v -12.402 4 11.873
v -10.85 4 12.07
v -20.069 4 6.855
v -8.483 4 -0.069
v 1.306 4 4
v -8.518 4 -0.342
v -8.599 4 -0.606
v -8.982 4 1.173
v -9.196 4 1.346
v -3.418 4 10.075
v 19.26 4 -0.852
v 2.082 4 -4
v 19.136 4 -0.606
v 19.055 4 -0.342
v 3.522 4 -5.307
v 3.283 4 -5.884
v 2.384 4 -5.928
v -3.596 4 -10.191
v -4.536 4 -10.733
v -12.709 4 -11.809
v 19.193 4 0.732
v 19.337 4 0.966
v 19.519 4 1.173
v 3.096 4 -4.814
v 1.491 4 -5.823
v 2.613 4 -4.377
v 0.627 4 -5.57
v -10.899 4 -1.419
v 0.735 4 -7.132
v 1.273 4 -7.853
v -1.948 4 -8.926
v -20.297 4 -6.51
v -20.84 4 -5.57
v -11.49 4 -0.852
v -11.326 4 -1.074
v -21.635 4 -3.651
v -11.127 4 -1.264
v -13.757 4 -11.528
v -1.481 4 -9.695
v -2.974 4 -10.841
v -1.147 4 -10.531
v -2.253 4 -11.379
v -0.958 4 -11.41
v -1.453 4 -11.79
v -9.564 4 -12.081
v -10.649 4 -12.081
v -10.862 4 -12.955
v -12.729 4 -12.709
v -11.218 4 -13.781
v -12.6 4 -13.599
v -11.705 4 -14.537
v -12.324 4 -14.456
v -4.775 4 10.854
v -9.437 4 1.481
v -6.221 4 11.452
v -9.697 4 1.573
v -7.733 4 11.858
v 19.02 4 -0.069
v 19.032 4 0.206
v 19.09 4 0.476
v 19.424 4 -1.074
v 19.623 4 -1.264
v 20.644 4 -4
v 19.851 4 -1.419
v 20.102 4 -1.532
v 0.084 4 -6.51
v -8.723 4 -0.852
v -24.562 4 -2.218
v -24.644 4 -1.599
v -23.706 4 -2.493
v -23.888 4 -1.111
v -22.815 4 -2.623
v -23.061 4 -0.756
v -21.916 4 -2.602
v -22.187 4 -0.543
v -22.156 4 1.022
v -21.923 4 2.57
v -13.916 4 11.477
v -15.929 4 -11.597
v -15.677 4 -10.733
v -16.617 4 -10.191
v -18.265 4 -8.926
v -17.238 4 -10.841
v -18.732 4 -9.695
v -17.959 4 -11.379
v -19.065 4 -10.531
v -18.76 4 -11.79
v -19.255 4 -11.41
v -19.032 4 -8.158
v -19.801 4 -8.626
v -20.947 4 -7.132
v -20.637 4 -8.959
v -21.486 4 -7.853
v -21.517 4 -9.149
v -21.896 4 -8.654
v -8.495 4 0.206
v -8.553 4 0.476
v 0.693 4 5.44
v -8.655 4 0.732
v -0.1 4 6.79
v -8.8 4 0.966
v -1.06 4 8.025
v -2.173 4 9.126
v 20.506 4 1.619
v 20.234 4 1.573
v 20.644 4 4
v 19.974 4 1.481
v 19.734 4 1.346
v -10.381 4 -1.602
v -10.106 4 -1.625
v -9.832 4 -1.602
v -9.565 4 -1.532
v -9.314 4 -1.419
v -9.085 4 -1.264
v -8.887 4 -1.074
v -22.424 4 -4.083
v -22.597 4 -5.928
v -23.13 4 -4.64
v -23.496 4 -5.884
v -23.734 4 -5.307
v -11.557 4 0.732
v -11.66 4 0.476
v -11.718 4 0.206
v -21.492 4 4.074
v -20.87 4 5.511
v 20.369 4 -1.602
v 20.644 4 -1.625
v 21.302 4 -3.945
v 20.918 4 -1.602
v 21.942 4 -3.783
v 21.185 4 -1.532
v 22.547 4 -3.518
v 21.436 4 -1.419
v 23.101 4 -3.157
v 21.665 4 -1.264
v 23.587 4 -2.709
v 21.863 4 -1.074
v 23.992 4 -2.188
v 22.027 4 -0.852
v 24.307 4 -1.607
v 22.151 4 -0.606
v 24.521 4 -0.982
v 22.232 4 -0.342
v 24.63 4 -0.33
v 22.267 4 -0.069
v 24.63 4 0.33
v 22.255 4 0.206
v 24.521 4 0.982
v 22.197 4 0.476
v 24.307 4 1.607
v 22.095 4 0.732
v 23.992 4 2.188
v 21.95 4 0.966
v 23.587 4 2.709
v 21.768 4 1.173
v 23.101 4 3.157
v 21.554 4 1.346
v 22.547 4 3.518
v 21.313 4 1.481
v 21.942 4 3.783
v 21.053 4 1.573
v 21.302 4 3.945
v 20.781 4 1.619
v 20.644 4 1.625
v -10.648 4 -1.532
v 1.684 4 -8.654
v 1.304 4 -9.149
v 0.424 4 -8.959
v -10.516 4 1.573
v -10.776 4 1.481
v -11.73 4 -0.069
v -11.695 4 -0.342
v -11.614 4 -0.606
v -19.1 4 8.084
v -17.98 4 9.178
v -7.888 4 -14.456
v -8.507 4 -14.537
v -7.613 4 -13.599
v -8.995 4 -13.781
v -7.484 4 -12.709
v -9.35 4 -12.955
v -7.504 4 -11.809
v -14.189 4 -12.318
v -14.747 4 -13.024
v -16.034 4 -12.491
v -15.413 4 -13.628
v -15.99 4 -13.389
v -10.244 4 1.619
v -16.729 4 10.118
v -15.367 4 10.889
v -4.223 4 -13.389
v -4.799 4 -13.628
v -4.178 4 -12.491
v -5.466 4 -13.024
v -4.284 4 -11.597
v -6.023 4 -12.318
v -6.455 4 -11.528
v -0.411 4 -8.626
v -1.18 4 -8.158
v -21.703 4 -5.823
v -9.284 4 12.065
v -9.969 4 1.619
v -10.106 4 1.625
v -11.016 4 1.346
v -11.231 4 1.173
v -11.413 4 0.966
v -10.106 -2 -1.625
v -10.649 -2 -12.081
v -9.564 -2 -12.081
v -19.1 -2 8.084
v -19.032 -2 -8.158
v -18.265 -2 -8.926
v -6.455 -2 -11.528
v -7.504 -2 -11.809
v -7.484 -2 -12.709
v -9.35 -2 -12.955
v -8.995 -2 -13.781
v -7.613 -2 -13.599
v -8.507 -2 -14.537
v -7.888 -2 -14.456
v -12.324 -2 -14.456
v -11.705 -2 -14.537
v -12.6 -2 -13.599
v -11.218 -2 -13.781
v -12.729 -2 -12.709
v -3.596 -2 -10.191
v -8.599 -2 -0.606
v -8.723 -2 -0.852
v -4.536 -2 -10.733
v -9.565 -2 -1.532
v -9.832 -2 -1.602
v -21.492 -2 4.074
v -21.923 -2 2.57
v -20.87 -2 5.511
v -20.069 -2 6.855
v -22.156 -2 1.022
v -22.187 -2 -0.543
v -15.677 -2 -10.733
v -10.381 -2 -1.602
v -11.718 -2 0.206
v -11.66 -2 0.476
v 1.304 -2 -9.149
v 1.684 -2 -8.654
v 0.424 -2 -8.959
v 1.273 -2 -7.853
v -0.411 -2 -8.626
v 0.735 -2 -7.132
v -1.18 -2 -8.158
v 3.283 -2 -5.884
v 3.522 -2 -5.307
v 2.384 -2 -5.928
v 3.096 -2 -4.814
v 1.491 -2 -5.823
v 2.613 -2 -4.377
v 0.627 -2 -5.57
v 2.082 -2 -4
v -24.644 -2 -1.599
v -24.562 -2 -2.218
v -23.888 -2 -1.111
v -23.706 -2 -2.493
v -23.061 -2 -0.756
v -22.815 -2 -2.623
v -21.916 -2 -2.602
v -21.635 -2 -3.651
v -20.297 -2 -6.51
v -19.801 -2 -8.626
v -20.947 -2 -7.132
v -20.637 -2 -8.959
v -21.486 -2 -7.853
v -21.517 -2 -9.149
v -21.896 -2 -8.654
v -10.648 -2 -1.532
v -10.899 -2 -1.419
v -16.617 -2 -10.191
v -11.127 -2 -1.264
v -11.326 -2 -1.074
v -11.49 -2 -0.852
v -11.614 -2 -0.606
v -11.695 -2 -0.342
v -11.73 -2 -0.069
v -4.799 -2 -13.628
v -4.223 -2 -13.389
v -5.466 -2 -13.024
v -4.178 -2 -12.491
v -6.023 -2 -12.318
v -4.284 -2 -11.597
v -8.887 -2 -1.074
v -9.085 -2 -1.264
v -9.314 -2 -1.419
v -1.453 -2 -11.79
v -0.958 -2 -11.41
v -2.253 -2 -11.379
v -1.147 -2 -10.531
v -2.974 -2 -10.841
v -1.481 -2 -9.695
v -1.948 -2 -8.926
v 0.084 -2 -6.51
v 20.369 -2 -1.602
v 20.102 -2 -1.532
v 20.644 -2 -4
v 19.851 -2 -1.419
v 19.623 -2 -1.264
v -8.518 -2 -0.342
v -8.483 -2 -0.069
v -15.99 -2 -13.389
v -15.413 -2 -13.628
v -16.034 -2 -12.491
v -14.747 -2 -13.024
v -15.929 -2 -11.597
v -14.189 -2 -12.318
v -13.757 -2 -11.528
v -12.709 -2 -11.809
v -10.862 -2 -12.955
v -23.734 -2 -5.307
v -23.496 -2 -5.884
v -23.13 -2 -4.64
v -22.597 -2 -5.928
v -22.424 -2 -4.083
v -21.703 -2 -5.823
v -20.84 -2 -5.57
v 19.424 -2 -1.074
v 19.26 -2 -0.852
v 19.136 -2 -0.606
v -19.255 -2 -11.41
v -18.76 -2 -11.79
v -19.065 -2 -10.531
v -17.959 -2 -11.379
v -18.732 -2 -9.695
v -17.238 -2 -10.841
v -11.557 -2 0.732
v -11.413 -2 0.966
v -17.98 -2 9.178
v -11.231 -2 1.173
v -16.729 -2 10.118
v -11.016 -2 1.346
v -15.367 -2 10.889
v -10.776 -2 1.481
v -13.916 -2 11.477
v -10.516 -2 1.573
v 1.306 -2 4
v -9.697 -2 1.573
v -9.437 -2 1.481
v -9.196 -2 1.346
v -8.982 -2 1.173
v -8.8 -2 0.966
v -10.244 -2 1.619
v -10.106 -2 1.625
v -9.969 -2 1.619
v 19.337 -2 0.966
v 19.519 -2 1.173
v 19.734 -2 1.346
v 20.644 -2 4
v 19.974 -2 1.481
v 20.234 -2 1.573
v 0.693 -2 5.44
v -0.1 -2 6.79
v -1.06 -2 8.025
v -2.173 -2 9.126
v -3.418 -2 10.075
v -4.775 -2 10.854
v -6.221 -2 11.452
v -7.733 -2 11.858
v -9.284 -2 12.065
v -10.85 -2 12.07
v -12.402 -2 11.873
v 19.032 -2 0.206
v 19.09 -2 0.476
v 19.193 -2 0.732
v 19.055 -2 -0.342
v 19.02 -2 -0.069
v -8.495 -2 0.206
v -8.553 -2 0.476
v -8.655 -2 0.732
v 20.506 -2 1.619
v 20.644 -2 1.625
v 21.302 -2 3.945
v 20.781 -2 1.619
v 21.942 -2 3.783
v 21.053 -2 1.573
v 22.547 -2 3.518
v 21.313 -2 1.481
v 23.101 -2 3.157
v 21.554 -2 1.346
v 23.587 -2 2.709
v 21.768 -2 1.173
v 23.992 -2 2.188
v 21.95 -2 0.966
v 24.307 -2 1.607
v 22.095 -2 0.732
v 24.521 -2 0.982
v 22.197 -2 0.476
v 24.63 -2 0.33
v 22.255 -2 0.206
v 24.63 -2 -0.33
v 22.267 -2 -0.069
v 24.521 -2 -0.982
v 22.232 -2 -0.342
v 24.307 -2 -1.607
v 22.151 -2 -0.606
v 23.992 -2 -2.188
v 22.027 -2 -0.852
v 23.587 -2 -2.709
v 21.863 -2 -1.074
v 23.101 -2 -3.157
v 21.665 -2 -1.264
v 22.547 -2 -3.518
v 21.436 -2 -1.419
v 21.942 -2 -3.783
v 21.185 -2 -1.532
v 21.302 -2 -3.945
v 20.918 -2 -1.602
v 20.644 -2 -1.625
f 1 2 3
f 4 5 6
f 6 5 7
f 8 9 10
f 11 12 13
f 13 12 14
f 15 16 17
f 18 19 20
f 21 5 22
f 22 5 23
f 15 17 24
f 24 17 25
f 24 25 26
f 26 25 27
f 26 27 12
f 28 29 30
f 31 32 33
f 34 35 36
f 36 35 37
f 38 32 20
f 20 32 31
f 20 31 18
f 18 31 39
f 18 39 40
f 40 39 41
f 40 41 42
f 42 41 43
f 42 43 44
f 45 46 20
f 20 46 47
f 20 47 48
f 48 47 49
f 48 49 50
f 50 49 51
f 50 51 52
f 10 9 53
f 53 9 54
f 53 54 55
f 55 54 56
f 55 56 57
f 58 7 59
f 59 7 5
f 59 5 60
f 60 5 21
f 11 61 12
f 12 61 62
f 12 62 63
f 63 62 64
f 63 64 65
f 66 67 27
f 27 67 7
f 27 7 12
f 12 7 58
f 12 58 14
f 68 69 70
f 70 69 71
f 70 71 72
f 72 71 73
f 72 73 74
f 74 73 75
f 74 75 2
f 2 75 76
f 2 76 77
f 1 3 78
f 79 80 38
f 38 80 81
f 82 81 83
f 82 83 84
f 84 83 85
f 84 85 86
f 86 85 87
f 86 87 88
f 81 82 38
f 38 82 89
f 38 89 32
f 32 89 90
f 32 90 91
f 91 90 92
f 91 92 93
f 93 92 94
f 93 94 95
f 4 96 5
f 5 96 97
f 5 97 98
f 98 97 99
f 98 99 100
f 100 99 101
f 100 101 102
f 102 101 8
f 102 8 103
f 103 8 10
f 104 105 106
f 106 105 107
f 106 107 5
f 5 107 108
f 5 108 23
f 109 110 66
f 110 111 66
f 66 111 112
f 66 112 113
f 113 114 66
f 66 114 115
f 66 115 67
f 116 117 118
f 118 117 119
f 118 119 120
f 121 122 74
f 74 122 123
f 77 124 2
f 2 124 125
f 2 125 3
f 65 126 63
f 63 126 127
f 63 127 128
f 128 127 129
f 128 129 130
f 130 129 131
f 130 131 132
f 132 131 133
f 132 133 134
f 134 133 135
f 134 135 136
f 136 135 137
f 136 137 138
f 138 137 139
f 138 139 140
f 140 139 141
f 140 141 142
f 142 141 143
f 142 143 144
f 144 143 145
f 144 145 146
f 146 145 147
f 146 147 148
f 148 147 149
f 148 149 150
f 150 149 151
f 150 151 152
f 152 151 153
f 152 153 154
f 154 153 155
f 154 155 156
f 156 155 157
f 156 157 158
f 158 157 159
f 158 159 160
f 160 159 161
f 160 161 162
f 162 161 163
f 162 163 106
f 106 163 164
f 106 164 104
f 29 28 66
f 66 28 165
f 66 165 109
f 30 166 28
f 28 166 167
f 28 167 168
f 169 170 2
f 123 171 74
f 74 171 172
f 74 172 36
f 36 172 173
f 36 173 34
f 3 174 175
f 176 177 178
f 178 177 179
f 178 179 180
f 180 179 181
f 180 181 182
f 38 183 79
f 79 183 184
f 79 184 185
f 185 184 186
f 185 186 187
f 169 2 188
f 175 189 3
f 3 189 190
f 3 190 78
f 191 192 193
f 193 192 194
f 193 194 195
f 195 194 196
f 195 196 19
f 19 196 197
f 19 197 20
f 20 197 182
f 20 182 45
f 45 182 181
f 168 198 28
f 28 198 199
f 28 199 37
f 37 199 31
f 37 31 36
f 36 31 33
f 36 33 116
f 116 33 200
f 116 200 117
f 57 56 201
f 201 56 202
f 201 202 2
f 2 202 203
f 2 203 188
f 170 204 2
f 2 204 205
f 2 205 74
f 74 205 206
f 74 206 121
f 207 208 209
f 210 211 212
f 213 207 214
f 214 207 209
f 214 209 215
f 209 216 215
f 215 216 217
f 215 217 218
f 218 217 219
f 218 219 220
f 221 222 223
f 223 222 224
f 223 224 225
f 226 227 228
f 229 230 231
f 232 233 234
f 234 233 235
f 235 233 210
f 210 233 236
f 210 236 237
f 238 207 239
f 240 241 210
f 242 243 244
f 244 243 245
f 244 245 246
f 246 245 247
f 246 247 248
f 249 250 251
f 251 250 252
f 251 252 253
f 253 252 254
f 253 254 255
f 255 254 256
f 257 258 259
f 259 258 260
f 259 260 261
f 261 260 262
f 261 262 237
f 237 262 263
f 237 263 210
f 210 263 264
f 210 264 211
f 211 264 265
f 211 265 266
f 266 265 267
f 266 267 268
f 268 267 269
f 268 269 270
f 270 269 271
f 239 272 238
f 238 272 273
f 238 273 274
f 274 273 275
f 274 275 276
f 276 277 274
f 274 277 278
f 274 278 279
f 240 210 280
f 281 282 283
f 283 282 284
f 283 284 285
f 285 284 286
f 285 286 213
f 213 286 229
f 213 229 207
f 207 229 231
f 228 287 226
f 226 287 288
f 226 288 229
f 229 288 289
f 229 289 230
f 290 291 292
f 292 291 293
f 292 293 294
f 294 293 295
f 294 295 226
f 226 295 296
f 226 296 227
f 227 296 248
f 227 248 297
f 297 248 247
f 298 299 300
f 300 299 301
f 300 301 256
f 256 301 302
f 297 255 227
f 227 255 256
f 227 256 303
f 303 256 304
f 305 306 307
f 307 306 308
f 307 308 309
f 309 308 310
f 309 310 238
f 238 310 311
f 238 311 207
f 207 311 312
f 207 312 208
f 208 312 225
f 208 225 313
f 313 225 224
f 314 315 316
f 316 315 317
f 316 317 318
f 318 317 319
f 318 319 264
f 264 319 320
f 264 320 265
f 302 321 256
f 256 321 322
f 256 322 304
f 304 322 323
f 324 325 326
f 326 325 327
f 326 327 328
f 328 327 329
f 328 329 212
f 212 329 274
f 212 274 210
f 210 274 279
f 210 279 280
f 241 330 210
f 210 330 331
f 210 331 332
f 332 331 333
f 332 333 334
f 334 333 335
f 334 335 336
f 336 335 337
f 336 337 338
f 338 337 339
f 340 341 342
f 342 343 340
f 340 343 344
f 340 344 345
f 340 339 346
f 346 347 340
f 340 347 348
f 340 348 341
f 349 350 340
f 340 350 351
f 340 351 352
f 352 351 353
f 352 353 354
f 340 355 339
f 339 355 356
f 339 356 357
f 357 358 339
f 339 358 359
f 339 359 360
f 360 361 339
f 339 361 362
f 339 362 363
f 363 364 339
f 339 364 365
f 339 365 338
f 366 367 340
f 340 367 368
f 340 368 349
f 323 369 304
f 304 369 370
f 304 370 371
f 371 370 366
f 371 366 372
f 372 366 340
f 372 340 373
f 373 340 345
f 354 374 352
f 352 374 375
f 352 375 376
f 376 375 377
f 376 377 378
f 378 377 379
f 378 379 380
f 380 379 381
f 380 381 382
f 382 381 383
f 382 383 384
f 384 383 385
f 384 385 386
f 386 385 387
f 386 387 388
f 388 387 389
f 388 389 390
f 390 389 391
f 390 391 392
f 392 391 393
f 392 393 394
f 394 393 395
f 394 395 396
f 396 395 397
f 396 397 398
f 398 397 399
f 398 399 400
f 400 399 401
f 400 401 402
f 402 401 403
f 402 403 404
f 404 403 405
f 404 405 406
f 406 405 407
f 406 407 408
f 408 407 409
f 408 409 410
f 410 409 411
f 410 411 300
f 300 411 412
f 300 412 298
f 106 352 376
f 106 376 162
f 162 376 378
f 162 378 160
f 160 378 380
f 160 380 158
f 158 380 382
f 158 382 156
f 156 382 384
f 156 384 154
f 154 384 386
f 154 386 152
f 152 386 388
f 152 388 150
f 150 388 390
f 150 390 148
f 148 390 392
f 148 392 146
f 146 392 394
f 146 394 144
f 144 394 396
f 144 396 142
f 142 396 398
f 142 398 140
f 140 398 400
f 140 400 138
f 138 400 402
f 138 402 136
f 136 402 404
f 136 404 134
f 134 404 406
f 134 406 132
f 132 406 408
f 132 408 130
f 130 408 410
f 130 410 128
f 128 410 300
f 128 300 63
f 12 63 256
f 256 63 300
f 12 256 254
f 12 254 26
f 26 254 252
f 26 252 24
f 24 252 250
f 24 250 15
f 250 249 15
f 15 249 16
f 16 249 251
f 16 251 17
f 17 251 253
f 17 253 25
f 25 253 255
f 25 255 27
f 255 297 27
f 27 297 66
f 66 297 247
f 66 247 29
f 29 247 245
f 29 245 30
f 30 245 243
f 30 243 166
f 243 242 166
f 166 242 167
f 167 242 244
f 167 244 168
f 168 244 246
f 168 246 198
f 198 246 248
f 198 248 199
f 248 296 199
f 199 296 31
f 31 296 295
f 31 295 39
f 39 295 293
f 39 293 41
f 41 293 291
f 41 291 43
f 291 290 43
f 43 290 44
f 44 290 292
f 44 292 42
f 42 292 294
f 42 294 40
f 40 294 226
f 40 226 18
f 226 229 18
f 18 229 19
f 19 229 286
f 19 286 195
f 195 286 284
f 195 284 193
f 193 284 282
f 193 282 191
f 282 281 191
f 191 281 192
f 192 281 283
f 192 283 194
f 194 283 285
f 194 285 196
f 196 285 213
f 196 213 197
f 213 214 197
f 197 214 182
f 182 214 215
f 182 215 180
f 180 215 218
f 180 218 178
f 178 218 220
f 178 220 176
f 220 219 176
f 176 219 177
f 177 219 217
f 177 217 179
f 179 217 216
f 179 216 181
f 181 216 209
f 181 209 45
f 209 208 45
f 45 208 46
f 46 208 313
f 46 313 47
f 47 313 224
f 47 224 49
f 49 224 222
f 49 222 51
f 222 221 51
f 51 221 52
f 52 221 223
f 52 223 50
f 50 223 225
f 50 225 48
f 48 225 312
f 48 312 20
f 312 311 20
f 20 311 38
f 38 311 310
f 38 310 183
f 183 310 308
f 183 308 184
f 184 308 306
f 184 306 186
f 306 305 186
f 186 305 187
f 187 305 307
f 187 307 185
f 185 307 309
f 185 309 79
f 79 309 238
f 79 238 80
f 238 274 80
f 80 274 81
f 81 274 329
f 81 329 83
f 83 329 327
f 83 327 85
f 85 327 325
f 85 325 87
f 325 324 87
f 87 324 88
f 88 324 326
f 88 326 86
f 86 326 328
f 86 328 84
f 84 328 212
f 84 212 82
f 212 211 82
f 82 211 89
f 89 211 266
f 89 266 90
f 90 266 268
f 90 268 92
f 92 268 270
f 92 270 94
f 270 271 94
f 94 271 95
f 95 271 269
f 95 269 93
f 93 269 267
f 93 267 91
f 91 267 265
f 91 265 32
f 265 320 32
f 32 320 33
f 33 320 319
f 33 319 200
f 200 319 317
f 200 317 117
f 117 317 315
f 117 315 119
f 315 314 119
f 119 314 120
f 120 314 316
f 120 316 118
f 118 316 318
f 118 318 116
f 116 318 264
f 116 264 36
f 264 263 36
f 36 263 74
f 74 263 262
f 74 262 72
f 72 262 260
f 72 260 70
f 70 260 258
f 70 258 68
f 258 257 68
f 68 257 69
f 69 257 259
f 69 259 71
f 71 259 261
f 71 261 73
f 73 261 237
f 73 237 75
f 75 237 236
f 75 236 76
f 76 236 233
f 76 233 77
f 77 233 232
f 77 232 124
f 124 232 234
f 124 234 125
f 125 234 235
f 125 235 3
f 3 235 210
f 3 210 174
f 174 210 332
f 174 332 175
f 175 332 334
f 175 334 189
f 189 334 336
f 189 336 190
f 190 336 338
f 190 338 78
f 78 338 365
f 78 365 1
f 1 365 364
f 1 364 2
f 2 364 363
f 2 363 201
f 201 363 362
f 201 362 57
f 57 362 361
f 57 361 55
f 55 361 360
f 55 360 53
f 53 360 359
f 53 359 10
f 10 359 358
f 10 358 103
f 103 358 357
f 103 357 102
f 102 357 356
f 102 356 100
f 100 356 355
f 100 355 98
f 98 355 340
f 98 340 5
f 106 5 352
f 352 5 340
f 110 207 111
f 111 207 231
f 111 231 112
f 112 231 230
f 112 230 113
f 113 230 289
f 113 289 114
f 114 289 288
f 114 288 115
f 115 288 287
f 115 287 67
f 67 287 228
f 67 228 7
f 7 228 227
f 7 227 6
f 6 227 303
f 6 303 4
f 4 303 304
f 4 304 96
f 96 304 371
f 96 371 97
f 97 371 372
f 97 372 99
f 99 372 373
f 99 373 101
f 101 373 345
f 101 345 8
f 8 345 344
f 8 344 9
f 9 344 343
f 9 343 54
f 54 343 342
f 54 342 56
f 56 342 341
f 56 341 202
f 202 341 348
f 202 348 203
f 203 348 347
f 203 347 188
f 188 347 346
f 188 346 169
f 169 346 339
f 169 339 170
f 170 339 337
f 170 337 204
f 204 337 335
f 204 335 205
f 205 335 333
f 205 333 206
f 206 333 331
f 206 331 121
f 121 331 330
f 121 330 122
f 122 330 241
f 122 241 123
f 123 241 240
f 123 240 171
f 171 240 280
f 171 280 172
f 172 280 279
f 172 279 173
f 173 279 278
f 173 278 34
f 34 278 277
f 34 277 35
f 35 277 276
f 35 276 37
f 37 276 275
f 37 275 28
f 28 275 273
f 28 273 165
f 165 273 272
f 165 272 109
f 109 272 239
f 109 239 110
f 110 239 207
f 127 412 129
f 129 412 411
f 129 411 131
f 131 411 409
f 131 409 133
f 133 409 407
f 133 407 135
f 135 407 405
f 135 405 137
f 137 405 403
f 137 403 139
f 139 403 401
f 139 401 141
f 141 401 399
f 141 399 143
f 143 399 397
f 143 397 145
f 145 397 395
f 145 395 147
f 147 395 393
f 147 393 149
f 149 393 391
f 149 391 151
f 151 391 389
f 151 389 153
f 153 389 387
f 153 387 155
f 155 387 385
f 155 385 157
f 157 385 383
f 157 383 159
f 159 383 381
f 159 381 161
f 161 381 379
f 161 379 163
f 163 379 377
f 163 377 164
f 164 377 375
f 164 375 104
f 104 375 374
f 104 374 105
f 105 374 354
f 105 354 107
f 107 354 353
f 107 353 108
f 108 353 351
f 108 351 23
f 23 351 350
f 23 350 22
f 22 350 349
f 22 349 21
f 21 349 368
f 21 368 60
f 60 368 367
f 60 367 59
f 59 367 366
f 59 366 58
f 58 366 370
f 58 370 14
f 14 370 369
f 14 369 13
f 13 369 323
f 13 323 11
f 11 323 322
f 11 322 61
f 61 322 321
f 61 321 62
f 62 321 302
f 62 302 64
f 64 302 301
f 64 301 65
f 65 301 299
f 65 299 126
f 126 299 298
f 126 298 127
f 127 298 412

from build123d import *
from build123d.topology import SkipClean

# Parameters (mm, degrees)
SKETCH1_R            = 1.625
BOSS_EXTRUDE1_DEPTH  = 4
CUT_EXTRUDE1_START   = -10
CUT_EXTRUDE1_DEPTH   = 10
MOVE_START           = -2
MOVE_FACE1_OUTLINE_R = 1.625
MOVE_FACE1_DEPTH     = 2


# Read off the part's stored shape, not the designer's step: Move Face1
with BuildPart() as part:
    # Sketch1 → Boss-Extrude1 (new body)
    with BuildSketch(Plane(origin=(0, 0, 0), x_dir=(1, 0, 0), z_dir=(0, 1, 0))):
        with BuildLine():
            Line((20.643657446, 4), (2.081641936, 4))
            ThreePointArc((2.081641936, 4), (2.861028333, 4.588201733), (3.521749436, 5.30713988))
            ThreePointArc((3.521749436, 5.30713988), (3.405395609, 5.596745198), (3.282888305, 5.883801663))
            ThreePointArc((3.282888305, 5.883801663), (1.93527598, 5.894040025), (0.627094961, 5.57027124))
            ThreePointArc((0.627094961, 5.57027124), (0.366286148, 6.046375), (0.084372603, 6.510293938))
            ThreePointArc((0.084372603, 6.510293938), (1.018855105, 7.48132754), (1.683794586, 8.65351323))
            ThreePointArc((1.683794586, 8.65351323), (1.496450048, 8.903135899), (1.303821399, 9.148703928))
            ThreePointArc((1.303821399, 9.148703928), (-0.000522033, 8.809805691), (-1.180330337, 8.158486898))
            ThreePointArc((-1.180330337, 8.158486898), (-1.555477026, 8.550865528), (-1.947855656, 8.926012217))
            ThreePointArc((-1.947855656, 8.926012217), (-1.296536862, 10.105820521), (-0.957638625, 11.410163953))
            ThreePointArc((-0.957638625, 11.410163953), (-1.203206655, 11.602792602), (-1.452829324, 11.79013714))
            ThreePointArc((-1.452829324, 11.79013714), (-2.625015014, 11.125197659), (-3.596048616, 10.190715157))
            ThreePointArc((-3.596048616, 10.190715157), (-4.059967554, 10.472628702), (-4.536071314, 10.733437515))
            ThreePointArc((-4.536071314, 10.733437515), (-4.212302529, 12.041618533), (-4.222540891, 13.389230859))
            ThreePointArc((-4.222540891, 13.389230859), (-4.509597355, 13.511738163), (-4.799202674, 13.62809199))
            ThreePointArc((-4.799202674, 13.62809199), (-5.759348103, 12.682425791), (-6.455432668, 11.528463019))
            ThreePointArc((-6.455432668, 11.528463019), (-6.976508546, 11.680699536), (-7.503891752, 11.809396783))
            ThreePointArc((-7.503891752, 11.809396783), (-7.529737283, 13.156800143), (-7.888414517, 14.455843809))
            ThreePointArc((-7.888414517, 14.455843809), (-8.197396993, 14.499881098), (-8.507248835, 14.537314892))
            ThreePointArc((-8.507248835, 14.537314892), (-9.18992168, 13.375367565), (-9.563620196, 12.080565177))
            ThreePointArc((-9.563620196, 12.080565177), (-10.106342554, 12.09275), (-10.649064912, 12.080565177))
            ThreePointArc((-10.649064912, 12.080565177), (-11.022763428, 13.375367565), (-11.705436272, 14.537314892))
            ThreePointArc((-11.705436272, 14.537314892), (-12.015288115, 14.499881098), (-12.324270591, 14.455843809))
            ThreePointArc((-12.324270591, 14.455843809), (-12.682947825, 13.156800143), (-12.708793355, 11.809396783))
            ThreePointArc((-12.708793355, 11.809396783), (-13.236176561, 11.680699536), (-13.757252439, 11.528463019))
            ThreePointArc((-13.757252439, 11.528463019), (-14.453337005, 12.682425791), (-15.413482434, 13.62809199))
            ThreePointArc((-15.413482434, 13.62809199), (-15.703087752, 13.511738163), (-15.990144217, 13.389230859))
            ThreePointArc((-15.990144217, 13.389230859), (-16.000382579, 12.041618533), (-15.676613793, 10.733437515))
            ThreePointArc((-15.676613793, 10.733437515), (-16.152717554, 10.472628702), (-16.616636492, 10.190715157))
            ThreePointArc((-16.616636492, 10.190715157), (-17.587670094, 11.125197659), (-18.759855783, 11.79013714))
            ThreePointArc((-18.759855783, 11.79013714), (-19.009478453, 11.602792602), (-19.255046482, 11.410163953))
            ThreePointArc((-19.255046482, 11.410163953), (-18.916148245, 10.105820521), (-18.264829452, 8.926012217))
            ThreePointArc((-18.264829452, 8.926012217), (-18.657208082, 8.550865528), (-19.032354771, 8.158486898))
            ThreePointArc((-19.032354771, 8.158486898), (-20.212163074, 8.809805691), (-21.516506507, 9.148703928))
            ThreePointArc((-21.516506507, 9.148703928), (-21.709135156, 8.903135899), (-21.896479694, 8.65351323))
            ThreePointArc((-21.896479694, 8.65351323), (-21.231540213, 7.48132754), (-20.297057711, 6.510293938))
            ThreePointArc((-20.297057711, 6.510293938), (-20.578971255, 6.046375), (-20.839780068, 5.57027124))
            ThreePointArc((-20.839780068, 5.57027124), (-22.147961087, 5.894040025), (-23.495573413, 5.883801663))
            ThreePointArc((-23.495573413, 5.883801663), (-23.618080717, 5.596745198), (-23.734434544, 5.30713988))
            ThreePointArc((-23.734434544, 5.30713988), (-22.788768345, 4.346994451), (-21.634805572, 3.650909885))
            ThreePointArc((-21.634805572, 3.650909885), (-21.78704209, 3.129834008), (-21.915739337, 2.602450802))
            ThreePointArc((-21.915739337, 2.602450802), (-23.263142697, 2.576605271), (-24.562186363, 2.217928037))
            ThreePointArc((-24.562186363, 2.217928037), (-24.606223651, 1.908945561), (-24.643657446, 1.599093719))
            ThreePointArc((-24.643657446, 1.599093719), (-23.481710119, 0.916420874), (-22.186907731, 0.542722358))
            ThreePointArc((-22.186907731, 0.542722358), (-22.199092554, 0), (-22.186907731, -0.542722358))
            ThreePointArc((-22.186907731, -0.542722358), (-23.481710119, -0.916420874), (-24.643657446, -1.599093719))
            ThreePointArc((-24.643657446, -1.599093719), (-24.606223651, -1.908945561), (-24.562186363, -2.217928037))
            ThreePointArc((-24.562186363, -2.217928037), (-23.263142697, -2.576605271), (-21.915739337, -2.602450802))
            ThreePointArc((-21.915739337, -2.602450802), (-21.78704209, -3.129834008), (-21.634805572, -3.650909885))
            ThreePointArc((-21.634805572, -3.650909885), (-22.788768345, -4.346994451), (-23.734434544, -5.30713988))
            ThreePointArc((-23.734434544, -5.30713988), (-23.618080717, -5.596745198), (-23.495573413, -5.883801663))
            ThreePointArc((-23.495573413, -5.883801663), (-22.147961087, -5.894040025), (-20.839780068, -5.57027124))
            ThreePointArc((-20.839780068, -5.57027124), (-20.578971255, -6.046375), (-20.297057711, -6.510293938))
            ThreePointArc((-20.297057711, -6.510293938), (-21.231540213, -7.48132754), (-21.896479694, -8.65351323))
            ThreePointArc((-21.896479694, -8.65351323), (-21.709135156, -8.903135899), (-21.516506507, -9.148703928))
            ThreePointArc((-21.516506507, -9.148703928), (-20.212163074, -8.809805691), (-19.032354771, -8.158486898))
            ThreePointArc((-19.032354771, -8.158486898), (-18.657208082, -8.550865528), (-18.264829452, -8.926012217))
            ThreePointArc((-18.264829452, -8.926012217), (-18.916148245, -10.105820521), (-19.255046482, -11.410163953))
            ThreePointArc((-19.255046482, -11.410163953), (-19.009478453, -11.602792602), (-18.759855783, -11.79013714))
            ThreePointArc((-18.759855783, -11.79013714), (-17.587670094, -11.125197659), (-16.616636492, -10.190715157))
            ThreePointArc((-16.616636492, -10.190715157), (-16.152717554, -10.472628702), (-15.676613793, -10.733437515))
            ThreePointArc((-15.676613793, -10.733437515), (-16.000382579, -12.041618533), (-15.990144217, -13.389230859))
            ThreePointArc((-15.990144217, -13.389230859), (-15.703087752, -13.511738163), (-15.413482434, -13.62809199))
            ThreePointArc((-15.413482434, -13.62809199), (-14.453337005, -12.682425791), (-13.757252439, -11.528463019))
            ThreePointArc((-13.757252439, -11.528463019), (-13.236176561, -11.680699536), (-12.708793355, -11.809396783))
            ThreePointArc((-12.708793355, -11.809396783), (-12.682947825, -13.156800143), (-12.324270591, -14.455843809))
            ThreePointArc((-12.324270591, -14.455843809), (-12.015288115, -14.499881098), (-11.705436272, -14.537314892))
            ThreePointArc((-11.705436272, -14.537314892), (-11.022763428, -13.375367565), (-10.649064912, -12.080565177))
            ThreePointArc((-10.649064912, -12.080565177), (-10.106342554, -12.09275), (-9.563620196, -12.080565177))
            ThreePointArc((-9.563620196, -12.080565177), (-9.18992168, -13.375367565), (-8.507248835, -14.537314892))
            ThreePointArc((-8.507248835, -14.537314892), (-8.197396993, -14.499881098), (-7.888414517, -14.455843809))
            ThreePointArc((-7.888414517, -14.455843809), (-7.529737283, -13.156800143), (-7.503891752, -11.809396783))
            ThreePointArc((-7.503891752, -11.809396783), (-6.976508546, -11.680699536), (-6.455432668, -11.528463019))
            ThreePointArc((-6.455432668, -11.528463019), (-5.759348103, -12.682425791), (-4.799202674, -13.62809199))
            ThreePointArc((-4.799202674, -13.62809199), (-4.509597355, -13.511738163), (-4.222540891, -13.389230859))
            ThreePointArc((-4.222540891, -13.389230859), (-4.212302529, -12.041618533), (-4.536071314, -10.733437515))
            ThreePointArc((-4.536071314, -10.733437515), (-4.059967554, -10.472628702), (-3.596048616, -10.190715157))
            ThreePointArc((-3.596048616, -10.190715157), (-2.625015014, -11.125197659), (-1.452829324, -11.79013714))
            ThreePointArc((-1.452829324, -11.79013714), (-1.203206655, -11.602792602), (-0.957638625, -11.410163953))
            ThreePointArc((-0.957638625, -11.410163953), (-1.296536862, -10.105820521), (-1.947855656, -8.926012217))
            ThreePointArc((-1.947855656, -8.926012217), (-1.555477026, -8.550865528), (-1.180330337, -8.158486898))
            ThreePointArc((-1.180330337, -8.158486898), (-0.000522033, -8.809805691), (1.303821399, -9.148703928))
            ThreePointArc((1.303821399, -9.148703928), (1.496450048, -8.903135899), (1.683794586, -8.65351323))
            ThreePointArc((1.683794586, -8.65351323), (1.018855105, -7.48132754), (0.084372603, -6.510293938))
            ThreePointArc((0.084372603, -6.510293938), (0.366286148, -6.046375), (0.627094961, -5.57027124))
            ThreePointArc((0.627094961, -5.57027124), (1.93527598, -5.894040025), (3.282888305, -5.883801663))
            ThreePointArc((3.282888305, -5.883801663), (3.405395609, -5.596745198), (3.521749436, -5.30713988))
            ThreePointArc((3.521749436, -5.30713988), (2.861028333, -4.588201733), (2.081641936, -4))
            Line((2.081641936, -4), (20.643657446, -4))
            ThreePointArc((20.643657446, -4), (24.643657446, 0), (20.643657446, 4))
        make_face()
        with Locations(Location((-10.106342554, 0, 0), (0, 0, 270))):
            Circle(SKETCH1_R, mode=Mode.SUBTRACT)
        with Locations(Location((20.643657446, 0, 0), (0, 0, 270))):
            Circle(SKETCH1_R, mode=Mode.SUBTRACT)
    extrude(amount=BOSS_EXTRUDE1_DEPTH)

    # Sketch2 → Cut-Extrude1 (cut)
    with SkipClean():  # the faces are left unmerged after this step: merging them gives an invalid solid
        with BuildSketch(Plane(origin=(0, 4, 0), x_dir=(1, 0, 0), z_dir=(0, 1, 0)).offset(CUT_EXTRUDE1_START)):
            with BuildLine():
                ThreePointArc((-24.562186363, -2.217928037), (-23.263142697, -2.576605271), (-21.915739337, -2.602450802))
                ThreePointArc((-21.915739337, -2.602450802), (-22.095637401, -1.578420611), (-22.186907731, -0.542722358))
                ThreePointArc((-22.186907731, -0.542722358), (-23.481710119, -0.916420874), (-24.643657446, -1.599093719))
                ThreePointArc((-24.643657446, -1.599093719), (-24.606223651, -1.908945561), (-24.562186363, -2.217928037))
            make_face()
            with BuildLine():
                ThreePointArc((-23.495573413, -5.883801663), (-22.147961087, -5.894040025), (-20.839780068, -5.57027124))
                ThreePointArc((-20.839780068, -5.57027124), (-21.278586771, -4.627695077), (-21.634805572, -3.650909885))
                ThreePointArc((-21.634805572, -3.650909885), (-22.788768345, -4.346994451), (-23.734434544, -5.30713988))
                ThreePointArc((-23.734434544, -5.30713988), (-23.618080717, -5.596745198), (-23.495573413, -5.883801663))
            make_face()
            with BuildLine():
                ThreePointArc((-21.516506507, -9.148703928), (-20.212163074, -8.809805691), (-19.032354771, -8.158486898))
                ThreePointArc((-19.032354771, -8.158486898), (-19.70016616, -7.361599771), (-20.297057711, -6.510293938))
                ThreePointArc((-20.297057711, -6.510293938), (-21.231540213, -7.48132754), (-21.896479694, -8.65351323))
                ThreePointArc((-21.896479694, -8.65351323), (-21.709135156, -8.903135899), (-21.516506507, -9.148703928))
            make_face()
            with BuildLine():
                ThreePointArc((-18.759855783, -11.79013714), (-17.587670094, -11.125197659), (-16.616636492, -10.190715157))
                ThreePointArc((-16.616636492, -10.190715157), (-17.467942324, -9.593823606), (-18.264829452, -8.926012217))
                ThreePointArc((-18.264829452, -8.926012217), (-18.916148245, -10.105820521), (-19.255046482, -11.410163953))
                ThreePointArc((-19.255046482, -11.410163953), (-19.009478453, -11.602792602), (-18.759855783, -11.79013714))
            make_face()
            with BuildLine():
                ThreePointArc((-15.413482434, -13.62809199), (-14.453337005, -12.682425791), (-13.757252439, -11.528463019))
                ThreePointArc((-13.757252439, -11.528463019), (-14.734037631, -11.172244217), (-15.676613793, -10.733437515))
                ThreePointArc((-15.676613793, -10.733437515), (-16.000382579, -12.041618533), (-15.990144217, -13.389230859))
                ThreePointArc((-15.990144217, -13.389230859), (-15.703087752, -13.511738163), (-15.413482434, -13.62809199))
            make_face()
            with BuildLine():
                ThreePointArc((-11.705436272, -14.537314892), (-11.022763428, -13.375367565), (-10.649064912, -12.080565177))
                ThreePointArc((-10.649064912, -12.080565177), (-11.684763165, -11.989294847), (-12.708793355, -11.809396783))
                ThreePointArc((-12.708793355, -11.809396783), (-12.682947825, -13.156800143), (-12.324270591, -14.455843809))
                ThreePointArc((-12.324270591, -14.455843809), (-12.015288115, -14.499881098), (-11.705436272, -14.537314892))
            make_face()
            with BuildLine():
                ThreePointArc((-7.888414517, -14.455843809), (-7.529737283, -13.156800143), (-7.503891752, -11.809396783))
                ThreePointArc((-7.503891752, -11.809396783), (-8.527921943, -11.989294847), (-9.563620196, -12.080565177))
                ThreePointArc((-9.563620196, -12.080565177), (-9.18992168, -13.375367565), (-8.507248835, -14.537314892))
                ThreePointArc((-8.507248835, -14.537314892), (-8.197396993, -14.499881098), (-7.888414517, -14.455843809))
            make_face()
            with BuildLine():
                ThreePointArc((-4.222540891, -13.389230859), (-4.212302529, -12.041618533), (-4.536071314, -10.733437515))
                ThreePointArc((-4.536071314, -10.733437515), (-5.478647477, -11.172244217), (-6.455432668, -11.528463019))
                ThreePointArc((-6.455432668, -11.528463019), (-5.759348103, -12.682425791), (-4.799202674, -13.62809199))
                ThreePointArc((-4.799202674, -13.62809199), (-4.509597355, -13.511738163), (-4.222540891, -13.389230859))
            make_face()
            with BuildLine():
                ThreePointArc((-0.957638625, -11.410163953), (-1.296536862, -10.105820521), (-1.947855656, -8.926012217))
                ThreePointArc((-1.947855656, -8.926012217), (-2.744742783, -9.593823606), (-3.596048616, -10.190715157))
                ThreePointArc((-3.596048616, -10.190715157), (-2.625015014, -11.125197659), (-1.452829324, -11.79013714))
                ThreePointArc((-1.452829324, -11.79013714), (-1.203206655, -11.602792602), (-0.957638625, -11.410163953))
            make_face()
            with BuildLine():
                ThreePointArc((1.683794586, -8.65351323), (1.018855105, -7.48132754), (0.084372603, -6.510293938))
                ThreePointArc((0.084372603, -6.510293938), (-0.512518948, -7.361599771), (-1.180330337, -8.158486898))
                ThreePointArc((-1.180330337, -8.158486898), (-0.000522033, -8.809805691), (1.303821399, -9.148703928))
                ThreePointArc((1.303821399, -9.148703928), (1.496450048, -8.903135899), (1.683794586, -8.65351323))
            make_face()
            with BuildLine():
                ThreePointArc((3.521749436, -5.30713988), (2.861028333, -4.588201733), (2.081641936, -4))
                Line((2.081641936, -4), (1.305695063, -4))
                ThreePointArc((1.305695063, -4), (0.994195953, -4.797149927), (0.627094961, -5.57027124))
                ThreePointArc((0.627094961, -5.57027124), (1.93527598, -5.894040025), (3.282888305, -5.883801663))
                ThreePointArc((3.282888305, -5.883801663), (3.405395609, -5.596745198), (3.521749436, -5.30713988))
            make_face()
        extrude(amount=CUT_EXTRUDE1_DEPTH, mode=Mode.SUBTRACT)

    # Move Face1 outline → Move Face1 (add)
    with SkipClean():  # the faces are left unmerged after this step: merging them gives an invalid solid
        with BuildSketch(Plane(origin=(0, 0, 0), x_dir=(1, 0, 0), z_dir=(0, 1, 0)).offset(MOVE_START)):
            with BuildLine():
                ThreePointArc((20.643657446, -4), (24.643657446, 0), (20.643657446, 4))
                Line((20.643657446, 4), (2.081641936, 4))
                ThreePointArc((2.081641936, 4), (2.861028333, 4.588201733), (3.521749436, 5.30713988))
                ThreePointArc((3.521749436, 5.30713988), (3.405395609, 5.596745198), (3.282888305, 5.883801663))
                ThreePointArc((3.282888305, 5.883801663), (1.93527598, 5.894040025), (0.627094961, 5.57027124))
                ThreePointArc((0.627094961, 5.57027124), (0.366286148, 6.046375), (0.084372603, 6.510293938))
                ThreePointArc((0.084372603, 6.510293938), (1.018855105, 7.48132754), (1.683794586, 8.65351323))
                ThreePointArc((1.683794586, 8.65351323), (1.496450048, 8.903135899), (1.303821399, 9.148703928))
                ThreePointArc((1.303821399, 9.148703928), (-0.000522033, 8.809805691), (-1.180330337, 8.158486898))
                ThreePointArc((-1.180330337, 8.158486898), (-1.555477026, 8.550865528), (-1.947855656, 8.926012217))
                ThreePointArc((-1.947855656, 8.926012217), (-1.296536862, 10.105820521), (-0.957638625, 11.410163953))
                ThreePointArc((-0.957638625, 11.410163953), (-1.203206654, 11.602792602), (-1.452829324, 11.79013714))
                ThreePointArc((-1.452829324, 11.79013714), (-2.625015014, 11.125197659), (-3.596048616, 10.190715157))
                ThreePointArc((-3.596048616, 10.190715157), (-4.059967554, 10.472628702), (-4.536071314, 10.733437515))
                ThreePointArc((-4.536071314, 10.733437515), (-4.212302529, 12.041618534), (-4.222540891, 13.389230859))
                ThreePointArc((-4.222540891, 13.389230859), (-4.509597356, 13.511738163), (-4.799202674, 13.62809199))
                ThreePointArc((-4.799202674, 13.62809199), (-5.759348103, 12.682425792), (-6.455432668, 11.528463019))
                ThreePointArc((-6.455432668, 11.528463019), (-6.976508546, 11.680699536), (-7.503891752, 11.809396783))
                ThreePointArc((-7.503891752, 11.809396783), (-7.529737283, 13.156800143), (-7.888414517, 14.455843809))
                ThreePointArc((-7.888414517, 14.455843809), (-8.197396993, 14.499881098), (-8.507248835, 14.537314892))
                ThreePointArc((-8.507248835, 14.537314892), (-9.18992168, 13.375367565), (-9.563620196, 12.080565177))
                ThreePointArc((-9.563620196, 12.080565177), (-10.106342554, 12.09275), (-10.649064912, 12.080565177))
                ThreePointArc((-10.649064912, 12.080565177), (-11.022763428, 13.375367565), (-11.705436272, 14.537314892))
                ThreePointArc((-11.705436272, 14.537314892), (-12.015288115, 14.499881098), (-12.324270591, 14.455843809))
                ThreePointArc((-12.324270591, 14.455843809), (-12.682947825, 13.156800143), (-12.708793355, 11.809396783))
                ThreePointArc((-12.708793355, 11.809396783), (-13.236176561, 11.680699536), (-13.757252439, 11.528463019))
                ThreePointArc((-13.757252439, 11.528463019), (-14.453337005, 12.682425791), (-15.413482434, 13.62809199))
                ThreePointArc((-15.413482434, 13.62809199), (-15.703087752, 13.511738163), (-15.990144217, 13.389230859))
                ThreePointArc((-15.990144217, 13.389230859), (-16.000382579, 12.041618533), (-15.676613793, 10.733437515))
                ThreePointArc((-15.676613793, 10.733437515), (-16.152717554, 10.472628702), (-16.616636492, 10.190715157))
                ThreePointArc((-16.616636492, 10.190715157), (-17.587670094, 11.125197659), (-18.759855783, 11.79013714))
                ThreePointArc((-18.759855783, 11.79013714), (-19.009478453, 11.602792602), (-19.255046482, 11.410163953))
                ThreePointArc((-19.255046482, 11.410163953), (-18.916148245, 10.105820521), (-18.264829452, 8.926012217))
                ThreePointArc((-18.264829452, 8.926012217), (-18.657208082, 8.550865528), (-19.032354771, 8.158486898))
                ThreePointArc((-19.032354771, 8.158486898), (-20.212163075, 8.809805691), (-21.516506507, 9.148703928))
                ThreePointArc((-21.516506507, 9.148703928), (-21.709135156, 8.903135899), (-21.896479694, 8.65351323))
                ThreePointArc((-21.896479694, 8.65351323), (-21.231540213, 7.48132754), (-20.297057711, 6.510293938))
                ThreePointArc((-20.297057711, 6.510293938), (-20.578971255, 6.046375), (-20.839780068, 5.57027124))
                ThreePointArc((-20.839780068, 5.57027124), (-22.147961087, 5.894040025), (-23.495573413, 5.883801663))
                ThreePointArc((-23.495573413, 5.883801663), (-23.618080717, 5.596745198), (-23.734434544, 5.30713988))
                ThreePointArc((-23.734434544, 5.30713988), (-22.788768345, 4.346994451), (-21.634805572, 3.650909885))
                ThreePointArc((-21.634805572, 3.650909885), (-21.78704209, 3.129834008), (-21.915739337, 2.602450802))
                ThreePointArc((-21.915739337, 2.602450802), (-23.263142697, 2.576605271), (-24.562186363, 2.217928037))
                ThreePointArc((-24.562186363, 2.217928037), (-24.606223651, 1.908945561), (-24.643657446, 1.599093719))
                ThreePointArc((-24.643657446, 1.599093719), (-23.481710119, 0.916420874), (-22.186907731, 0.542722358))
                ThreePointArc((-22.186907731, 0.542722358), (-12.402167869, -11.872817218), (1.305695063, -4))
                Line((1.305695063, -4), (20.643657446, -4))
            make_face()
            with Locations((-10.106342554, 0)):
                Circle(MOVE_FACE1_OUTLINE_R, mode=Mode.SUBTRACT)
            with Locations((20.643657446, 0)):
                Circle(MOVE_FACE1_OUTLINE_R, mode=Mode.SUBTRACT)
        extrude(amount=MOVE_FACE1_DEPTH)


solid = part.part
